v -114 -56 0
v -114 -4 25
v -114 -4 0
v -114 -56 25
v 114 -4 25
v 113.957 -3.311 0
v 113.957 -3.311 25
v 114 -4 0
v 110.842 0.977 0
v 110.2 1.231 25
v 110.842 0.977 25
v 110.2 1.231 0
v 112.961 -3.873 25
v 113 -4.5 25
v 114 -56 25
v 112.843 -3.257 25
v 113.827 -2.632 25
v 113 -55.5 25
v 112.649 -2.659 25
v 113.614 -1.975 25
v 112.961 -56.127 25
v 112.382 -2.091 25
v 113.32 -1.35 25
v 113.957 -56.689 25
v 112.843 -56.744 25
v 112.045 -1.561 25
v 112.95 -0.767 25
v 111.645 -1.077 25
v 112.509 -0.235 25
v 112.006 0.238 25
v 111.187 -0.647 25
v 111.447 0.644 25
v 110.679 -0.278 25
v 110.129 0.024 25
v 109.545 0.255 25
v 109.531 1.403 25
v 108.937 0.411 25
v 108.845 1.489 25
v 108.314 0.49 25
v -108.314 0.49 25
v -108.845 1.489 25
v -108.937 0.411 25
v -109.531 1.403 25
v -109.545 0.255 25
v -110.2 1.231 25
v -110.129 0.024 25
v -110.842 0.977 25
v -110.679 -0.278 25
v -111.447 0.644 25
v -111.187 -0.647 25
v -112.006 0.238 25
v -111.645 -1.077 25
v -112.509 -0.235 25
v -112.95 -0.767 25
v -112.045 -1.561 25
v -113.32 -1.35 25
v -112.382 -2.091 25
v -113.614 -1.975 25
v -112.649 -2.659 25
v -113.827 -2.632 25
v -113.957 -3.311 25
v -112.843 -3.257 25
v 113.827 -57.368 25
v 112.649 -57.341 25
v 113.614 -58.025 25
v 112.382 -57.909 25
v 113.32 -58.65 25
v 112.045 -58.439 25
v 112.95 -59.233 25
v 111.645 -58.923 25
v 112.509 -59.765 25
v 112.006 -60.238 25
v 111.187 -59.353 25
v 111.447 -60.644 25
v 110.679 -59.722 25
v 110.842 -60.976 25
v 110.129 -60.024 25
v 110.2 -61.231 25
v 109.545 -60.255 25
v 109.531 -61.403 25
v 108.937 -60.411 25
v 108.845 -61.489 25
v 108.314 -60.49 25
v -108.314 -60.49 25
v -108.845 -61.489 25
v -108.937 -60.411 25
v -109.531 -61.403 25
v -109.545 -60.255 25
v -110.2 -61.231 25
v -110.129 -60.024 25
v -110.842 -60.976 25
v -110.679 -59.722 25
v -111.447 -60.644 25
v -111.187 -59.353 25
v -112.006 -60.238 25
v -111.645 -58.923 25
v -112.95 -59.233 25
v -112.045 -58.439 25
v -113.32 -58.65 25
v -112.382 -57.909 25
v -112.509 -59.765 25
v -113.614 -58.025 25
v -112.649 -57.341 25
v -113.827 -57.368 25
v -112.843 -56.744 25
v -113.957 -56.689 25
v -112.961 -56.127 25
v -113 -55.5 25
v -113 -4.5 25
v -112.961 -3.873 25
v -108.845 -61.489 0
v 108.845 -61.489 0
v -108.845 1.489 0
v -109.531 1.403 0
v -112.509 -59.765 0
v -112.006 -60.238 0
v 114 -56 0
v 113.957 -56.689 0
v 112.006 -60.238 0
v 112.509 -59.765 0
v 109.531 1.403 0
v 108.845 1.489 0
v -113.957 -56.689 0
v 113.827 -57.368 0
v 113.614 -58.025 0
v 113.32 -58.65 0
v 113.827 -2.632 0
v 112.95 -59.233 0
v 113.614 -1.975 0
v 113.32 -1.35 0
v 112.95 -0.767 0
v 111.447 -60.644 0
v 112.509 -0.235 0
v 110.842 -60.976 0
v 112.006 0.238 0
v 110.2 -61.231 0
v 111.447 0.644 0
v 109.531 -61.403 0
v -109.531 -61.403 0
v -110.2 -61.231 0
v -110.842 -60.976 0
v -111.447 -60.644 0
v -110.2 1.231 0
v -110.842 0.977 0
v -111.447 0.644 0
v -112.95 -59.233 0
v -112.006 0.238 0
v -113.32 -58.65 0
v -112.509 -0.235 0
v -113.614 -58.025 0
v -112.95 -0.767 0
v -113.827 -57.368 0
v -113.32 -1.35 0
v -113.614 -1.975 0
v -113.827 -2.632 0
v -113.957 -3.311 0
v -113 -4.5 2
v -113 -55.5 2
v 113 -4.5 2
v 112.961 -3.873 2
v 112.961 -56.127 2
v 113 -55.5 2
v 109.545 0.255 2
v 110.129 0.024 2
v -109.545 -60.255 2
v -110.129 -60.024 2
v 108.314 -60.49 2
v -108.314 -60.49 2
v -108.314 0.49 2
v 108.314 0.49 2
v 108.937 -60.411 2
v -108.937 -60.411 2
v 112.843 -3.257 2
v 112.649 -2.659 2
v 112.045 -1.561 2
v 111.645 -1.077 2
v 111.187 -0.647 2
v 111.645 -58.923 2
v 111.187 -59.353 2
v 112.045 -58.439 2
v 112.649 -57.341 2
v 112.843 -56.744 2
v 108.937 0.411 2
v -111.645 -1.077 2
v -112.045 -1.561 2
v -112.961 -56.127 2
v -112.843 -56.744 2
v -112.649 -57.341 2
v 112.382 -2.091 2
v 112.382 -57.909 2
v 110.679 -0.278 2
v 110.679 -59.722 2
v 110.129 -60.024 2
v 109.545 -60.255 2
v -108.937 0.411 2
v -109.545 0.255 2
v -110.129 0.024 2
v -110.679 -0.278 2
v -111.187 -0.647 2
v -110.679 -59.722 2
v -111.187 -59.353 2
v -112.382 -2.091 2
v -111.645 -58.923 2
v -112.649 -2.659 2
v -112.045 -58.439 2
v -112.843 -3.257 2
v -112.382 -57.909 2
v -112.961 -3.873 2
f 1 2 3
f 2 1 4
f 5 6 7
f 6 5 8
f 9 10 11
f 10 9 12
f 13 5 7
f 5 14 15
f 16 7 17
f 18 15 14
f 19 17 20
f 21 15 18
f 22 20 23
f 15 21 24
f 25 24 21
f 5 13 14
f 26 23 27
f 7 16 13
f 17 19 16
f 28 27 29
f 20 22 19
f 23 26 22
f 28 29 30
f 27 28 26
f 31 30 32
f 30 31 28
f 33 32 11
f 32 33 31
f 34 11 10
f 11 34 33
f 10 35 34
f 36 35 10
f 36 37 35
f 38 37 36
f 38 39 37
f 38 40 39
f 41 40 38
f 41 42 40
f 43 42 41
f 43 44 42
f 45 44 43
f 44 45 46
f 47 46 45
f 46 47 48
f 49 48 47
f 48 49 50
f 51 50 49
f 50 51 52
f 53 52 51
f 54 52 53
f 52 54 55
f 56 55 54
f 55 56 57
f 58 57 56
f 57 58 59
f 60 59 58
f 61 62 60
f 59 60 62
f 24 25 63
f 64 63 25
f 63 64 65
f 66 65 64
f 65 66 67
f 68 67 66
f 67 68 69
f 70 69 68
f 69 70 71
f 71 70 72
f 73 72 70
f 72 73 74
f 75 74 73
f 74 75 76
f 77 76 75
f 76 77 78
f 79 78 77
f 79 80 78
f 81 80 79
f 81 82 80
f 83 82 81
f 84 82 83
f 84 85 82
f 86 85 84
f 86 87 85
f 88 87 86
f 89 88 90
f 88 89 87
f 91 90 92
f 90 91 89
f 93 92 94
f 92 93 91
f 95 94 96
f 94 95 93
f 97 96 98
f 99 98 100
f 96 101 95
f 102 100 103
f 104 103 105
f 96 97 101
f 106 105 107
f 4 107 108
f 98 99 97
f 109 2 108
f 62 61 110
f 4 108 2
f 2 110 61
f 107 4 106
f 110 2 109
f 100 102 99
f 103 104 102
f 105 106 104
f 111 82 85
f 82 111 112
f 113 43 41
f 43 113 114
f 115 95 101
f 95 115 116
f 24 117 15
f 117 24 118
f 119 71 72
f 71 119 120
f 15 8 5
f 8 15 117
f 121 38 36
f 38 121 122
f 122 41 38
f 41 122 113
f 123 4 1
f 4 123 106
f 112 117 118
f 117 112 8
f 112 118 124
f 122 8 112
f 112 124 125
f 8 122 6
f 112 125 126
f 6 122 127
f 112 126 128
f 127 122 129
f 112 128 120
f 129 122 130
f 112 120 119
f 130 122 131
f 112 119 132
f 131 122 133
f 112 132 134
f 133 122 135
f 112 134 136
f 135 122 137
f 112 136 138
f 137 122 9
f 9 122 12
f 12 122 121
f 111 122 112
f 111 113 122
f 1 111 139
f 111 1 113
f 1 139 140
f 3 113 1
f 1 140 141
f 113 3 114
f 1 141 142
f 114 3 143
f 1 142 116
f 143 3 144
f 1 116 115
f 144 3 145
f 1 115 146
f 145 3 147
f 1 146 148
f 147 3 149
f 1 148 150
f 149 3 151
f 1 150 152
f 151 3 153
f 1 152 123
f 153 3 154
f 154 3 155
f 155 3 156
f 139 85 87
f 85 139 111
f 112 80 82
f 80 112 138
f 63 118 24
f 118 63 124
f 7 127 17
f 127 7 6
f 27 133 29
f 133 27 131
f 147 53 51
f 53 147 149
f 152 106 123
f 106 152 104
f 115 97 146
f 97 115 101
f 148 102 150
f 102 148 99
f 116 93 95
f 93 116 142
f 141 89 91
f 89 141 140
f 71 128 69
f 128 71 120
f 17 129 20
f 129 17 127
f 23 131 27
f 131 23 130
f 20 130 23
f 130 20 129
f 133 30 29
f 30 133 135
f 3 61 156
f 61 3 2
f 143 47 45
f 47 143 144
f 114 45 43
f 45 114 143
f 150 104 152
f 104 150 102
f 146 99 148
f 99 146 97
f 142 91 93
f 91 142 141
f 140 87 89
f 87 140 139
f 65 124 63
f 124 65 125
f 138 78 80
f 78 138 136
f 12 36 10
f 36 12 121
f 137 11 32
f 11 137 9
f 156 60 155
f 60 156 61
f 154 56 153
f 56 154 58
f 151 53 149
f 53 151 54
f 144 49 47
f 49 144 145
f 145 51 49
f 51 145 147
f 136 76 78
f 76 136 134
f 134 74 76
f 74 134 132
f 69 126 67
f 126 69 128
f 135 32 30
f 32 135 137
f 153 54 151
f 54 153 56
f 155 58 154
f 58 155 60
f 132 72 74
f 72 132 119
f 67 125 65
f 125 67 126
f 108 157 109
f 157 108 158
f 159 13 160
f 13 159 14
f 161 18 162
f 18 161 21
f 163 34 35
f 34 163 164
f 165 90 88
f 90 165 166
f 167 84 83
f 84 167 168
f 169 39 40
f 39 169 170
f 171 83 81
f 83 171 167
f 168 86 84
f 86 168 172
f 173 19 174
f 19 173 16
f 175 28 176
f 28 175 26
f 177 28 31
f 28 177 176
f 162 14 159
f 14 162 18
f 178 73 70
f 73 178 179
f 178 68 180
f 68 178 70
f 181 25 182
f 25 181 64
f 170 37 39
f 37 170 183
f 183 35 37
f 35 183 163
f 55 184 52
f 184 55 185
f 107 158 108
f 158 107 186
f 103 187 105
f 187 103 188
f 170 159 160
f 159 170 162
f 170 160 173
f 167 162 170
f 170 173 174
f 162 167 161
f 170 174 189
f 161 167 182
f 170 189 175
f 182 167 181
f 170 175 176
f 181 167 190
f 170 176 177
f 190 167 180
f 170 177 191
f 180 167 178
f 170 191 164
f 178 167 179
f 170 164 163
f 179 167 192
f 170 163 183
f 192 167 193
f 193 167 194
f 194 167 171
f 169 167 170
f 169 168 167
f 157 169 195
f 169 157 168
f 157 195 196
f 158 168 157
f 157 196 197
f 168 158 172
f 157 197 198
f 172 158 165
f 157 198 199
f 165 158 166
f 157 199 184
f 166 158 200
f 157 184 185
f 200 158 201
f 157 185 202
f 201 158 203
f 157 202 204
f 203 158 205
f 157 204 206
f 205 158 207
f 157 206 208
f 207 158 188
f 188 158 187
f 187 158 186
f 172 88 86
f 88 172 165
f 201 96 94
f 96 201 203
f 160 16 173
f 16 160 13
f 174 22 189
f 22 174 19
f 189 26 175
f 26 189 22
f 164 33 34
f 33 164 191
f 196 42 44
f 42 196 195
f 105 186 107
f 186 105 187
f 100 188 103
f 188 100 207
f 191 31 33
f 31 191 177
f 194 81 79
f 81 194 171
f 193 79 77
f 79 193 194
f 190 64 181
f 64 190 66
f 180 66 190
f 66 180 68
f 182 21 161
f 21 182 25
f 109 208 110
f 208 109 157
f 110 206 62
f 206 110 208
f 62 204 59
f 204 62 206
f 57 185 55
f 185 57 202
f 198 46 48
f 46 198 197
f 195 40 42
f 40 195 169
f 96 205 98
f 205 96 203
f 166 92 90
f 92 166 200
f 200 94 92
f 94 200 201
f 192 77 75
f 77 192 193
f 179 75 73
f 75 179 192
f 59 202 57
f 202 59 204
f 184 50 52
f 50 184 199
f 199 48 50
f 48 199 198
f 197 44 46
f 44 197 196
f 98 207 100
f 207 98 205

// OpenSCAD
$fn = 50;


difference() {
	union() {
		translate(v = [0, -30.0000000000, 0]) {
			hull() {
				translate(v = [-108.5000000000, 26.0000000000, 0]) {
					cylinder(h = 25, r = 5.5000000000);
				}
				translate(v = [108.5000000000, 26.0000000000, 0]) {
					cylinder(h = 25, r = 5.5000000000);
				}
				translate(v = [-108.5000000000, -26.0000000000, 0]) {
					cylinder(h = 25, r = 5.5000000000);
				}
				translate(v = [108.5000000000, -26.0000000000, 0]) {
					cylinder(h = 25, r = 5.5000000000);
				}
			}
		}
	}
	union() {
		translate(v = [0, -30.0000000000, 2]) {
			hull() {
				translate(v = [-108.0000000000, 25.5000000000, 0]) {
					cylinder(h = 50, r = 5);
				}
				translate(v = [108.0000000000, 25.5000000000, 0]) {
					cylinder(h = 50, r = 5);
				}
				translate(v = [-108.0000000000, -25.5000000000, 0]) {
					cylinder(h = 50, r = 5);
				}
				translate(v = [108.0000000000, -25.5000000000, 0]) {
					cylinder(h = 50, r = 5);
				}
			}
		}
	}
}
